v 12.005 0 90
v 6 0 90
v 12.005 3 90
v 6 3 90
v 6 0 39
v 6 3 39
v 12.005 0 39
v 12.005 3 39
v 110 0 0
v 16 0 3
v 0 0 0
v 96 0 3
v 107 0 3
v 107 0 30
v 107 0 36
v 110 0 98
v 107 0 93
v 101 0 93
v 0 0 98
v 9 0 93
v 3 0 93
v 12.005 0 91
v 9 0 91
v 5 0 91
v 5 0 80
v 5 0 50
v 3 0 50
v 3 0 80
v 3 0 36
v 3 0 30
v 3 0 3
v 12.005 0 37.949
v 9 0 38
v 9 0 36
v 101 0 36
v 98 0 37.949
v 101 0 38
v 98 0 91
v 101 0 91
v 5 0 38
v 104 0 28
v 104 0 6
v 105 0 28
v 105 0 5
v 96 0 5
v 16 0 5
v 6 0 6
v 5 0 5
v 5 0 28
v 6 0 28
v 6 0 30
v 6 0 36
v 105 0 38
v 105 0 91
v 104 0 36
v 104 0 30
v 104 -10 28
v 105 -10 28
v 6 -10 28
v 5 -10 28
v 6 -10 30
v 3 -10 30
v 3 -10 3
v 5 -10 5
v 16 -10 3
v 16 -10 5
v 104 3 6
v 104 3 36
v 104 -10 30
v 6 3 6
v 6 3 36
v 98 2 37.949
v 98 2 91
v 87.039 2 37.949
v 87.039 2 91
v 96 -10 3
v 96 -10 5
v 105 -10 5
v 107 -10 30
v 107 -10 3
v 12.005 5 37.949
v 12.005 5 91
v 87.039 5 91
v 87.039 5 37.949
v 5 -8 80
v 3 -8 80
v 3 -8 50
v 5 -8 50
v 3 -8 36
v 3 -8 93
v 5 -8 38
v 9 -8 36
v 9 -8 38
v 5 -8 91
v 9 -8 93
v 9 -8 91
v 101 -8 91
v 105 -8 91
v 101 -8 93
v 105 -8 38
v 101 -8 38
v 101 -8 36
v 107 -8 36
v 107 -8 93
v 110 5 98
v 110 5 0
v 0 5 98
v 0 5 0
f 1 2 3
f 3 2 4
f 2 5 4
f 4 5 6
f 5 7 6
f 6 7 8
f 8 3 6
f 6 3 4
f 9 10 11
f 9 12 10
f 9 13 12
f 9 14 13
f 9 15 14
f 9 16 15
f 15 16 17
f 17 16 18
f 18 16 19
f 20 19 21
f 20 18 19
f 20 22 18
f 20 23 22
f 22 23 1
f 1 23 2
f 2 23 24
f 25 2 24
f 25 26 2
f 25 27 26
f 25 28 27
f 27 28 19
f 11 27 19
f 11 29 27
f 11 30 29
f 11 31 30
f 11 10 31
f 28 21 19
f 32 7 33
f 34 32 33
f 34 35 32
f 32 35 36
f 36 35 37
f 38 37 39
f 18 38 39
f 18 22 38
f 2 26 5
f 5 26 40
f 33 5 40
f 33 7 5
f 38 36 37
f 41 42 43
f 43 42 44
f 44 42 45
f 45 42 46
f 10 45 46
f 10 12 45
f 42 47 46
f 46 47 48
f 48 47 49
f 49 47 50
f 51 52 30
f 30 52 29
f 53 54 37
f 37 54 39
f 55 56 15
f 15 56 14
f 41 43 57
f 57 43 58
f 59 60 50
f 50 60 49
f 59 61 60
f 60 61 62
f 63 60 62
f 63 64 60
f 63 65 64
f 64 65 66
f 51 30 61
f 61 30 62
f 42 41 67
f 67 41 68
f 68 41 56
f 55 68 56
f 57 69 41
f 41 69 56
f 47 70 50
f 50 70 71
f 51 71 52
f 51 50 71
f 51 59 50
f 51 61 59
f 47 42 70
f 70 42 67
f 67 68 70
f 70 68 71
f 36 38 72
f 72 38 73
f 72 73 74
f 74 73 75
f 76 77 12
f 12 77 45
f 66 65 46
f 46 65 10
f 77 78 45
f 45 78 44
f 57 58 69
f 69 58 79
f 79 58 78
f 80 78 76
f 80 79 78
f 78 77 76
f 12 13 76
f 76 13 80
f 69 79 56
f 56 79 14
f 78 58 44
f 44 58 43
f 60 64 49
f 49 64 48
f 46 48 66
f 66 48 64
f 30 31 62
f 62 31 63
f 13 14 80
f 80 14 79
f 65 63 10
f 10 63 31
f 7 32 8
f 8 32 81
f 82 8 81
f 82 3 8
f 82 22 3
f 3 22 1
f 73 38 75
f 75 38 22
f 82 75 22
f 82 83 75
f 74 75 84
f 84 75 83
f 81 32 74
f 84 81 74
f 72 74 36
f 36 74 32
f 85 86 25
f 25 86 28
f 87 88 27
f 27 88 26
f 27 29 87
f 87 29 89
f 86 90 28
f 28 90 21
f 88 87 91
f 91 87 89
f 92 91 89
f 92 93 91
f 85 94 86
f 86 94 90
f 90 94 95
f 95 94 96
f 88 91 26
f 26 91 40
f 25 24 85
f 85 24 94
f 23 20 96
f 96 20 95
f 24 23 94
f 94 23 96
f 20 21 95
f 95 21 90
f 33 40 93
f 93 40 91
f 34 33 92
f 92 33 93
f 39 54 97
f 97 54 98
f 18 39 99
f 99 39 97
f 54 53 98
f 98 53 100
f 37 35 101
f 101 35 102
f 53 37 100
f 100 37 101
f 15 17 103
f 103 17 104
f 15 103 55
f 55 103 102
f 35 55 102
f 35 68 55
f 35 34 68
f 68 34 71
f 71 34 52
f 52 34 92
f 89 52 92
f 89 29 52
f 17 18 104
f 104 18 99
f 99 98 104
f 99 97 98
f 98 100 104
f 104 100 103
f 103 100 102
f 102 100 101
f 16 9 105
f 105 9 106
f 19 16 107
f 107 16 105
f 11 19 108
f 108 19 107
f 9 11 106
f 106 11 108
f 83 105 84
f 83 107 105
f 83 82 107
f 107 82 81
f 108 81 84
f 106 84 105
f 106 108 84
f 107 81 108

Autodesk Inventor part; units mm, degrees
ref_plane "YZ Plane" through (0, 0, 0) normal (1, 0, 0) x (0, 1, 0)
ref_plane "XZ Plane" through (0, 0, 0) normal (0, 1, 0) x (-1, 0, 0)
ref_plane "XY Plane" through (0, 0, 0) normal (0, 0, 1) x (1, 0, 0)
sketch "Skizze1" plane through (0, 0, 0) normal (0, 1, 0) x (-1, 0, 0)
  line L0 (0, 0) -> (-110, 0)
  line L1 (-110, 0) -> (-110, 98)
  line L2 (-110, 98) -> (0, 98)
  line L3 (0, 98) -> (0, 0)
  dimension "d0" = 110
  dimension "d1" = 98
extrude "Extrusion1" add sketch "Skizze1" along normal blind 5
sketch "Skizze2" plane through (0, 0, 0) normal (0, -1, 0) x (1, 0, 0)
  line L0 (107, 93) -> (105, 93)
  line L1 (105, 93) -> (105, 36)
  line L2 (105, 36) -> (107, 36)
  line L3 (107, 36) -> (107, 93)
  line L4 (3, 93) -> (5, 93)
  line L5 (5, 93) -> (5, 36)
  line L6 (5, 36) -> (3, 36)
  line L7 (3, 36) -> (3, 93)
  line L8 (5, 36) -> (9, 36)
  line L9 (9, 36) -> (9, 38)
  line L10 (9, 38) -> (5, 38)
  line L11 (5, 38) -> (5, 36)
  line L12 (5, 93) -> (9, 93)
  line L13 (9, 93) -> (9, 91)
  line L14 (9, 91) -> (5, 91)
  line L15 (5, 91) -> (5, 93)
  line L16 (105, 93) -> (101, 93)
  line L17 (101, 93) -> (101, 91)
  line L18 (101, 91) -> (105, 91)
  line L19 (105, 91) -> (105, 93)
  line L20 (105, 36) -> (101, 36)
  line L21 (101, 36) -> (101, 38)
  line L22 (101, 38) -> (105, 38)
  line L23 (105, 38) -> (105, 36)
extrude "Extrusion2" add sketch "Skizze2" along normal blind 8 contours L3 L2 L1 L0
extrude "Extrusion3" add sketch "Skizze2" along normal blind 8 contours L20 L21 L22 L1
extrude "Extrusion4" add sketch "Skizze2" along normal blind 8 contours L1 L18 L17 L16
extrude "Extrusion5" add sketch "Skizze2" along normal blind 8 contours L5 L10 L9 L8
extrude "Extrusion6" add sketch "Skizze2" along normal blind 8 contours L4 L5 L6 L7
extrude "Extrusion7" add sketch "Skizze2" along normal blind 8 contours L12 L13 L14 L5
sketch "Skizze3" plane through (0, -8, 0) normal (0, -1, 0) x (1, 0, 0)
  line L0 (5, 38) -> (5, 91) projected
  line L1 (3, 93) -> (3, 36) projected
  line L2 (3, 80) -> (5, 80)
  line L3 (5, 80) -> (5, 50)
  line L4 (5, 50) -> (3, 50)
  line L5 (3, 50) -> (3, 80)
  point P0 (0, 0)
extrude "Extrusion8" cut sketch "Skizze3" against normal blind 8
sketch "Skizze4" plane through (0, 5, 0) normal (0, 1, 0) x (1, 0, 0)
  line L0 (12.0049, -91) -> (87.0387, -91)
  line L1 (87.0387, -91) -> (87.0387, -37.9492)
  line L2 (87.0387, -37.9492) -> (12.0049, -37.9492)
  line L3 (12.0049, -37.9492) -> (12.0049, -91)
extrude "Extrusion9" cut sketch "Skizze4" against normal blind 8
sketch "Skizze5" plane through (0, 0, 0) normal (0, -1, 0) x (1, 0, 0)
  line L0 (3, 3) -> (107, 3)
  line L1 (107, 3) -> (107, 30)
  line L2 (107, 30) -> (3, 30)
  line L3 (3, 30) -> (3, 3)
extrude "Extrusion10" add sketch "Skizze5" along normal blind 10
sketch "Skizze6" plane through (0, -10, 0) normal (0, -1, 0) x (1, 0, 0)
  line L0 (5, 5) -> (105, 5)
  line L1 (105, 5) -> (105, 28)
  line L2 (105, 28) -> (5, 28)
  line L3 (5, 28) -> (5, 5)
  point P0 (0, 0)
extrude "Extrusion11" cut sketch "Skizze6" against normal blind 10
sketch "Skizze7" plane through (0, -10, 0) normal (0, -1, 0) x (1, 0, 0)
  line L0 (107, 30) -> (3, 30) projected
  line L1 (5, 28) -> (105, 28) projected
  line L2 (14, 30) -> (98, 30)
  line L3 (98, 30) -> (98, 28)
  line L4 (98, 28) -> (14, 28)
  line L5 (14, 28) -> (14, 30)
  point P0 (0, 0)
extrude "Extrusion12" cut sketch "Skizze7" against normal blind 10
sketch "Skizze8" plane through (0, -10, 0) normal (0, -1, 0) x (1, 0, 0)
  line L0 (105, 5) -> (5, 5) projected
  line L1 (107, 3) -> (3, 3) projected
  line L2 (16, 5) -> (96, 5)
  line L3 (96, 5) -> (96, 3)
  line L4 (96, 3) -> (16, 3)
  line L5 (16, 3) -> (16, 5)
  point P0 (0, 0)
extrude "Extrusion13" cut sketch "Skizze8" against normal blind 10
sketch "Skizze14" plane through (0, 0, 0) normal (0, -1, 0) x (1, 0, 0)
  line L0 (87.0387, 37.9492) -> (98, 37.9492)
  line L1 (98, 37.9492) -> (98, 91)
  line L2 (98, 91) -> (87.0387, 91)
  line L3 (87.0387, 91) -> (87.0387, 37.9492)
extrude "Extrusion20" cut sketch "Skizze14" against normal blind 2
sketch "Skizze15" plane through (0, 0, 0) normal (0, -1, 0) x (1, 0, 0)
  line L0 (104, 6) -> (6, 6)
  line L1 (6, 6) -> (6, 27)
  line L2 (6, 27) -> (104, 27)
  line L3 (104, 27) -> (104, 6)
extrude "Extrusion21" cut sketch "Skizze15" against normal blind 3
sketch "Skizze16" plane through (0, -10, 0) normal (0, -1, 0) x (1, 0, 0)
  line L0 (104, 28) -> (6, 28)
  line L1 (6, 28) -> (6, 30)
  line L2 (6, 30) -> (104, 30)
  line L3 (104, 30) -> (104, 28)
  point P0 (0, 0)
extrude "Extrusion22" cut sketch "Skizze16" against normal blind 10
sketch "Skizze17" plane through (0, 0, 0) normal (0, -1, 0) x (1, 0, 0)
  line L0 (9, 36) -> (3, 36) projected
  line L1 (104, 27) -> (6, 27)
  line L2 (6, 27) -> (6, 36)
  line L3 (6, 36) -> (104, 36)
  line L4 (104, 36) -> (104, 27)
extrude "Extrusion23" cut sketch "Skizze17" against normal blind 3
sketch "Skizze18" plane through (0, 0, 0) normal (0, -1, 0) x (1, 0, 0)
  line L0 (12.0049, 91) -> (12.0049, 37.9492) projected
  line L1 (12.0049, 39) -> (6, 39)
  line L2 (6, 39) -> (6, 90)
  line L3 (6, 90) -> (12.0049, 90)
  line L4 (12.0049, 90) -> (12.0049, 39)
extrude "Extrusion24" cut sketch "Skizze18" against normal blind 3
properties part number "ARDUINO_DUE_CASE_TOP_NEU"
